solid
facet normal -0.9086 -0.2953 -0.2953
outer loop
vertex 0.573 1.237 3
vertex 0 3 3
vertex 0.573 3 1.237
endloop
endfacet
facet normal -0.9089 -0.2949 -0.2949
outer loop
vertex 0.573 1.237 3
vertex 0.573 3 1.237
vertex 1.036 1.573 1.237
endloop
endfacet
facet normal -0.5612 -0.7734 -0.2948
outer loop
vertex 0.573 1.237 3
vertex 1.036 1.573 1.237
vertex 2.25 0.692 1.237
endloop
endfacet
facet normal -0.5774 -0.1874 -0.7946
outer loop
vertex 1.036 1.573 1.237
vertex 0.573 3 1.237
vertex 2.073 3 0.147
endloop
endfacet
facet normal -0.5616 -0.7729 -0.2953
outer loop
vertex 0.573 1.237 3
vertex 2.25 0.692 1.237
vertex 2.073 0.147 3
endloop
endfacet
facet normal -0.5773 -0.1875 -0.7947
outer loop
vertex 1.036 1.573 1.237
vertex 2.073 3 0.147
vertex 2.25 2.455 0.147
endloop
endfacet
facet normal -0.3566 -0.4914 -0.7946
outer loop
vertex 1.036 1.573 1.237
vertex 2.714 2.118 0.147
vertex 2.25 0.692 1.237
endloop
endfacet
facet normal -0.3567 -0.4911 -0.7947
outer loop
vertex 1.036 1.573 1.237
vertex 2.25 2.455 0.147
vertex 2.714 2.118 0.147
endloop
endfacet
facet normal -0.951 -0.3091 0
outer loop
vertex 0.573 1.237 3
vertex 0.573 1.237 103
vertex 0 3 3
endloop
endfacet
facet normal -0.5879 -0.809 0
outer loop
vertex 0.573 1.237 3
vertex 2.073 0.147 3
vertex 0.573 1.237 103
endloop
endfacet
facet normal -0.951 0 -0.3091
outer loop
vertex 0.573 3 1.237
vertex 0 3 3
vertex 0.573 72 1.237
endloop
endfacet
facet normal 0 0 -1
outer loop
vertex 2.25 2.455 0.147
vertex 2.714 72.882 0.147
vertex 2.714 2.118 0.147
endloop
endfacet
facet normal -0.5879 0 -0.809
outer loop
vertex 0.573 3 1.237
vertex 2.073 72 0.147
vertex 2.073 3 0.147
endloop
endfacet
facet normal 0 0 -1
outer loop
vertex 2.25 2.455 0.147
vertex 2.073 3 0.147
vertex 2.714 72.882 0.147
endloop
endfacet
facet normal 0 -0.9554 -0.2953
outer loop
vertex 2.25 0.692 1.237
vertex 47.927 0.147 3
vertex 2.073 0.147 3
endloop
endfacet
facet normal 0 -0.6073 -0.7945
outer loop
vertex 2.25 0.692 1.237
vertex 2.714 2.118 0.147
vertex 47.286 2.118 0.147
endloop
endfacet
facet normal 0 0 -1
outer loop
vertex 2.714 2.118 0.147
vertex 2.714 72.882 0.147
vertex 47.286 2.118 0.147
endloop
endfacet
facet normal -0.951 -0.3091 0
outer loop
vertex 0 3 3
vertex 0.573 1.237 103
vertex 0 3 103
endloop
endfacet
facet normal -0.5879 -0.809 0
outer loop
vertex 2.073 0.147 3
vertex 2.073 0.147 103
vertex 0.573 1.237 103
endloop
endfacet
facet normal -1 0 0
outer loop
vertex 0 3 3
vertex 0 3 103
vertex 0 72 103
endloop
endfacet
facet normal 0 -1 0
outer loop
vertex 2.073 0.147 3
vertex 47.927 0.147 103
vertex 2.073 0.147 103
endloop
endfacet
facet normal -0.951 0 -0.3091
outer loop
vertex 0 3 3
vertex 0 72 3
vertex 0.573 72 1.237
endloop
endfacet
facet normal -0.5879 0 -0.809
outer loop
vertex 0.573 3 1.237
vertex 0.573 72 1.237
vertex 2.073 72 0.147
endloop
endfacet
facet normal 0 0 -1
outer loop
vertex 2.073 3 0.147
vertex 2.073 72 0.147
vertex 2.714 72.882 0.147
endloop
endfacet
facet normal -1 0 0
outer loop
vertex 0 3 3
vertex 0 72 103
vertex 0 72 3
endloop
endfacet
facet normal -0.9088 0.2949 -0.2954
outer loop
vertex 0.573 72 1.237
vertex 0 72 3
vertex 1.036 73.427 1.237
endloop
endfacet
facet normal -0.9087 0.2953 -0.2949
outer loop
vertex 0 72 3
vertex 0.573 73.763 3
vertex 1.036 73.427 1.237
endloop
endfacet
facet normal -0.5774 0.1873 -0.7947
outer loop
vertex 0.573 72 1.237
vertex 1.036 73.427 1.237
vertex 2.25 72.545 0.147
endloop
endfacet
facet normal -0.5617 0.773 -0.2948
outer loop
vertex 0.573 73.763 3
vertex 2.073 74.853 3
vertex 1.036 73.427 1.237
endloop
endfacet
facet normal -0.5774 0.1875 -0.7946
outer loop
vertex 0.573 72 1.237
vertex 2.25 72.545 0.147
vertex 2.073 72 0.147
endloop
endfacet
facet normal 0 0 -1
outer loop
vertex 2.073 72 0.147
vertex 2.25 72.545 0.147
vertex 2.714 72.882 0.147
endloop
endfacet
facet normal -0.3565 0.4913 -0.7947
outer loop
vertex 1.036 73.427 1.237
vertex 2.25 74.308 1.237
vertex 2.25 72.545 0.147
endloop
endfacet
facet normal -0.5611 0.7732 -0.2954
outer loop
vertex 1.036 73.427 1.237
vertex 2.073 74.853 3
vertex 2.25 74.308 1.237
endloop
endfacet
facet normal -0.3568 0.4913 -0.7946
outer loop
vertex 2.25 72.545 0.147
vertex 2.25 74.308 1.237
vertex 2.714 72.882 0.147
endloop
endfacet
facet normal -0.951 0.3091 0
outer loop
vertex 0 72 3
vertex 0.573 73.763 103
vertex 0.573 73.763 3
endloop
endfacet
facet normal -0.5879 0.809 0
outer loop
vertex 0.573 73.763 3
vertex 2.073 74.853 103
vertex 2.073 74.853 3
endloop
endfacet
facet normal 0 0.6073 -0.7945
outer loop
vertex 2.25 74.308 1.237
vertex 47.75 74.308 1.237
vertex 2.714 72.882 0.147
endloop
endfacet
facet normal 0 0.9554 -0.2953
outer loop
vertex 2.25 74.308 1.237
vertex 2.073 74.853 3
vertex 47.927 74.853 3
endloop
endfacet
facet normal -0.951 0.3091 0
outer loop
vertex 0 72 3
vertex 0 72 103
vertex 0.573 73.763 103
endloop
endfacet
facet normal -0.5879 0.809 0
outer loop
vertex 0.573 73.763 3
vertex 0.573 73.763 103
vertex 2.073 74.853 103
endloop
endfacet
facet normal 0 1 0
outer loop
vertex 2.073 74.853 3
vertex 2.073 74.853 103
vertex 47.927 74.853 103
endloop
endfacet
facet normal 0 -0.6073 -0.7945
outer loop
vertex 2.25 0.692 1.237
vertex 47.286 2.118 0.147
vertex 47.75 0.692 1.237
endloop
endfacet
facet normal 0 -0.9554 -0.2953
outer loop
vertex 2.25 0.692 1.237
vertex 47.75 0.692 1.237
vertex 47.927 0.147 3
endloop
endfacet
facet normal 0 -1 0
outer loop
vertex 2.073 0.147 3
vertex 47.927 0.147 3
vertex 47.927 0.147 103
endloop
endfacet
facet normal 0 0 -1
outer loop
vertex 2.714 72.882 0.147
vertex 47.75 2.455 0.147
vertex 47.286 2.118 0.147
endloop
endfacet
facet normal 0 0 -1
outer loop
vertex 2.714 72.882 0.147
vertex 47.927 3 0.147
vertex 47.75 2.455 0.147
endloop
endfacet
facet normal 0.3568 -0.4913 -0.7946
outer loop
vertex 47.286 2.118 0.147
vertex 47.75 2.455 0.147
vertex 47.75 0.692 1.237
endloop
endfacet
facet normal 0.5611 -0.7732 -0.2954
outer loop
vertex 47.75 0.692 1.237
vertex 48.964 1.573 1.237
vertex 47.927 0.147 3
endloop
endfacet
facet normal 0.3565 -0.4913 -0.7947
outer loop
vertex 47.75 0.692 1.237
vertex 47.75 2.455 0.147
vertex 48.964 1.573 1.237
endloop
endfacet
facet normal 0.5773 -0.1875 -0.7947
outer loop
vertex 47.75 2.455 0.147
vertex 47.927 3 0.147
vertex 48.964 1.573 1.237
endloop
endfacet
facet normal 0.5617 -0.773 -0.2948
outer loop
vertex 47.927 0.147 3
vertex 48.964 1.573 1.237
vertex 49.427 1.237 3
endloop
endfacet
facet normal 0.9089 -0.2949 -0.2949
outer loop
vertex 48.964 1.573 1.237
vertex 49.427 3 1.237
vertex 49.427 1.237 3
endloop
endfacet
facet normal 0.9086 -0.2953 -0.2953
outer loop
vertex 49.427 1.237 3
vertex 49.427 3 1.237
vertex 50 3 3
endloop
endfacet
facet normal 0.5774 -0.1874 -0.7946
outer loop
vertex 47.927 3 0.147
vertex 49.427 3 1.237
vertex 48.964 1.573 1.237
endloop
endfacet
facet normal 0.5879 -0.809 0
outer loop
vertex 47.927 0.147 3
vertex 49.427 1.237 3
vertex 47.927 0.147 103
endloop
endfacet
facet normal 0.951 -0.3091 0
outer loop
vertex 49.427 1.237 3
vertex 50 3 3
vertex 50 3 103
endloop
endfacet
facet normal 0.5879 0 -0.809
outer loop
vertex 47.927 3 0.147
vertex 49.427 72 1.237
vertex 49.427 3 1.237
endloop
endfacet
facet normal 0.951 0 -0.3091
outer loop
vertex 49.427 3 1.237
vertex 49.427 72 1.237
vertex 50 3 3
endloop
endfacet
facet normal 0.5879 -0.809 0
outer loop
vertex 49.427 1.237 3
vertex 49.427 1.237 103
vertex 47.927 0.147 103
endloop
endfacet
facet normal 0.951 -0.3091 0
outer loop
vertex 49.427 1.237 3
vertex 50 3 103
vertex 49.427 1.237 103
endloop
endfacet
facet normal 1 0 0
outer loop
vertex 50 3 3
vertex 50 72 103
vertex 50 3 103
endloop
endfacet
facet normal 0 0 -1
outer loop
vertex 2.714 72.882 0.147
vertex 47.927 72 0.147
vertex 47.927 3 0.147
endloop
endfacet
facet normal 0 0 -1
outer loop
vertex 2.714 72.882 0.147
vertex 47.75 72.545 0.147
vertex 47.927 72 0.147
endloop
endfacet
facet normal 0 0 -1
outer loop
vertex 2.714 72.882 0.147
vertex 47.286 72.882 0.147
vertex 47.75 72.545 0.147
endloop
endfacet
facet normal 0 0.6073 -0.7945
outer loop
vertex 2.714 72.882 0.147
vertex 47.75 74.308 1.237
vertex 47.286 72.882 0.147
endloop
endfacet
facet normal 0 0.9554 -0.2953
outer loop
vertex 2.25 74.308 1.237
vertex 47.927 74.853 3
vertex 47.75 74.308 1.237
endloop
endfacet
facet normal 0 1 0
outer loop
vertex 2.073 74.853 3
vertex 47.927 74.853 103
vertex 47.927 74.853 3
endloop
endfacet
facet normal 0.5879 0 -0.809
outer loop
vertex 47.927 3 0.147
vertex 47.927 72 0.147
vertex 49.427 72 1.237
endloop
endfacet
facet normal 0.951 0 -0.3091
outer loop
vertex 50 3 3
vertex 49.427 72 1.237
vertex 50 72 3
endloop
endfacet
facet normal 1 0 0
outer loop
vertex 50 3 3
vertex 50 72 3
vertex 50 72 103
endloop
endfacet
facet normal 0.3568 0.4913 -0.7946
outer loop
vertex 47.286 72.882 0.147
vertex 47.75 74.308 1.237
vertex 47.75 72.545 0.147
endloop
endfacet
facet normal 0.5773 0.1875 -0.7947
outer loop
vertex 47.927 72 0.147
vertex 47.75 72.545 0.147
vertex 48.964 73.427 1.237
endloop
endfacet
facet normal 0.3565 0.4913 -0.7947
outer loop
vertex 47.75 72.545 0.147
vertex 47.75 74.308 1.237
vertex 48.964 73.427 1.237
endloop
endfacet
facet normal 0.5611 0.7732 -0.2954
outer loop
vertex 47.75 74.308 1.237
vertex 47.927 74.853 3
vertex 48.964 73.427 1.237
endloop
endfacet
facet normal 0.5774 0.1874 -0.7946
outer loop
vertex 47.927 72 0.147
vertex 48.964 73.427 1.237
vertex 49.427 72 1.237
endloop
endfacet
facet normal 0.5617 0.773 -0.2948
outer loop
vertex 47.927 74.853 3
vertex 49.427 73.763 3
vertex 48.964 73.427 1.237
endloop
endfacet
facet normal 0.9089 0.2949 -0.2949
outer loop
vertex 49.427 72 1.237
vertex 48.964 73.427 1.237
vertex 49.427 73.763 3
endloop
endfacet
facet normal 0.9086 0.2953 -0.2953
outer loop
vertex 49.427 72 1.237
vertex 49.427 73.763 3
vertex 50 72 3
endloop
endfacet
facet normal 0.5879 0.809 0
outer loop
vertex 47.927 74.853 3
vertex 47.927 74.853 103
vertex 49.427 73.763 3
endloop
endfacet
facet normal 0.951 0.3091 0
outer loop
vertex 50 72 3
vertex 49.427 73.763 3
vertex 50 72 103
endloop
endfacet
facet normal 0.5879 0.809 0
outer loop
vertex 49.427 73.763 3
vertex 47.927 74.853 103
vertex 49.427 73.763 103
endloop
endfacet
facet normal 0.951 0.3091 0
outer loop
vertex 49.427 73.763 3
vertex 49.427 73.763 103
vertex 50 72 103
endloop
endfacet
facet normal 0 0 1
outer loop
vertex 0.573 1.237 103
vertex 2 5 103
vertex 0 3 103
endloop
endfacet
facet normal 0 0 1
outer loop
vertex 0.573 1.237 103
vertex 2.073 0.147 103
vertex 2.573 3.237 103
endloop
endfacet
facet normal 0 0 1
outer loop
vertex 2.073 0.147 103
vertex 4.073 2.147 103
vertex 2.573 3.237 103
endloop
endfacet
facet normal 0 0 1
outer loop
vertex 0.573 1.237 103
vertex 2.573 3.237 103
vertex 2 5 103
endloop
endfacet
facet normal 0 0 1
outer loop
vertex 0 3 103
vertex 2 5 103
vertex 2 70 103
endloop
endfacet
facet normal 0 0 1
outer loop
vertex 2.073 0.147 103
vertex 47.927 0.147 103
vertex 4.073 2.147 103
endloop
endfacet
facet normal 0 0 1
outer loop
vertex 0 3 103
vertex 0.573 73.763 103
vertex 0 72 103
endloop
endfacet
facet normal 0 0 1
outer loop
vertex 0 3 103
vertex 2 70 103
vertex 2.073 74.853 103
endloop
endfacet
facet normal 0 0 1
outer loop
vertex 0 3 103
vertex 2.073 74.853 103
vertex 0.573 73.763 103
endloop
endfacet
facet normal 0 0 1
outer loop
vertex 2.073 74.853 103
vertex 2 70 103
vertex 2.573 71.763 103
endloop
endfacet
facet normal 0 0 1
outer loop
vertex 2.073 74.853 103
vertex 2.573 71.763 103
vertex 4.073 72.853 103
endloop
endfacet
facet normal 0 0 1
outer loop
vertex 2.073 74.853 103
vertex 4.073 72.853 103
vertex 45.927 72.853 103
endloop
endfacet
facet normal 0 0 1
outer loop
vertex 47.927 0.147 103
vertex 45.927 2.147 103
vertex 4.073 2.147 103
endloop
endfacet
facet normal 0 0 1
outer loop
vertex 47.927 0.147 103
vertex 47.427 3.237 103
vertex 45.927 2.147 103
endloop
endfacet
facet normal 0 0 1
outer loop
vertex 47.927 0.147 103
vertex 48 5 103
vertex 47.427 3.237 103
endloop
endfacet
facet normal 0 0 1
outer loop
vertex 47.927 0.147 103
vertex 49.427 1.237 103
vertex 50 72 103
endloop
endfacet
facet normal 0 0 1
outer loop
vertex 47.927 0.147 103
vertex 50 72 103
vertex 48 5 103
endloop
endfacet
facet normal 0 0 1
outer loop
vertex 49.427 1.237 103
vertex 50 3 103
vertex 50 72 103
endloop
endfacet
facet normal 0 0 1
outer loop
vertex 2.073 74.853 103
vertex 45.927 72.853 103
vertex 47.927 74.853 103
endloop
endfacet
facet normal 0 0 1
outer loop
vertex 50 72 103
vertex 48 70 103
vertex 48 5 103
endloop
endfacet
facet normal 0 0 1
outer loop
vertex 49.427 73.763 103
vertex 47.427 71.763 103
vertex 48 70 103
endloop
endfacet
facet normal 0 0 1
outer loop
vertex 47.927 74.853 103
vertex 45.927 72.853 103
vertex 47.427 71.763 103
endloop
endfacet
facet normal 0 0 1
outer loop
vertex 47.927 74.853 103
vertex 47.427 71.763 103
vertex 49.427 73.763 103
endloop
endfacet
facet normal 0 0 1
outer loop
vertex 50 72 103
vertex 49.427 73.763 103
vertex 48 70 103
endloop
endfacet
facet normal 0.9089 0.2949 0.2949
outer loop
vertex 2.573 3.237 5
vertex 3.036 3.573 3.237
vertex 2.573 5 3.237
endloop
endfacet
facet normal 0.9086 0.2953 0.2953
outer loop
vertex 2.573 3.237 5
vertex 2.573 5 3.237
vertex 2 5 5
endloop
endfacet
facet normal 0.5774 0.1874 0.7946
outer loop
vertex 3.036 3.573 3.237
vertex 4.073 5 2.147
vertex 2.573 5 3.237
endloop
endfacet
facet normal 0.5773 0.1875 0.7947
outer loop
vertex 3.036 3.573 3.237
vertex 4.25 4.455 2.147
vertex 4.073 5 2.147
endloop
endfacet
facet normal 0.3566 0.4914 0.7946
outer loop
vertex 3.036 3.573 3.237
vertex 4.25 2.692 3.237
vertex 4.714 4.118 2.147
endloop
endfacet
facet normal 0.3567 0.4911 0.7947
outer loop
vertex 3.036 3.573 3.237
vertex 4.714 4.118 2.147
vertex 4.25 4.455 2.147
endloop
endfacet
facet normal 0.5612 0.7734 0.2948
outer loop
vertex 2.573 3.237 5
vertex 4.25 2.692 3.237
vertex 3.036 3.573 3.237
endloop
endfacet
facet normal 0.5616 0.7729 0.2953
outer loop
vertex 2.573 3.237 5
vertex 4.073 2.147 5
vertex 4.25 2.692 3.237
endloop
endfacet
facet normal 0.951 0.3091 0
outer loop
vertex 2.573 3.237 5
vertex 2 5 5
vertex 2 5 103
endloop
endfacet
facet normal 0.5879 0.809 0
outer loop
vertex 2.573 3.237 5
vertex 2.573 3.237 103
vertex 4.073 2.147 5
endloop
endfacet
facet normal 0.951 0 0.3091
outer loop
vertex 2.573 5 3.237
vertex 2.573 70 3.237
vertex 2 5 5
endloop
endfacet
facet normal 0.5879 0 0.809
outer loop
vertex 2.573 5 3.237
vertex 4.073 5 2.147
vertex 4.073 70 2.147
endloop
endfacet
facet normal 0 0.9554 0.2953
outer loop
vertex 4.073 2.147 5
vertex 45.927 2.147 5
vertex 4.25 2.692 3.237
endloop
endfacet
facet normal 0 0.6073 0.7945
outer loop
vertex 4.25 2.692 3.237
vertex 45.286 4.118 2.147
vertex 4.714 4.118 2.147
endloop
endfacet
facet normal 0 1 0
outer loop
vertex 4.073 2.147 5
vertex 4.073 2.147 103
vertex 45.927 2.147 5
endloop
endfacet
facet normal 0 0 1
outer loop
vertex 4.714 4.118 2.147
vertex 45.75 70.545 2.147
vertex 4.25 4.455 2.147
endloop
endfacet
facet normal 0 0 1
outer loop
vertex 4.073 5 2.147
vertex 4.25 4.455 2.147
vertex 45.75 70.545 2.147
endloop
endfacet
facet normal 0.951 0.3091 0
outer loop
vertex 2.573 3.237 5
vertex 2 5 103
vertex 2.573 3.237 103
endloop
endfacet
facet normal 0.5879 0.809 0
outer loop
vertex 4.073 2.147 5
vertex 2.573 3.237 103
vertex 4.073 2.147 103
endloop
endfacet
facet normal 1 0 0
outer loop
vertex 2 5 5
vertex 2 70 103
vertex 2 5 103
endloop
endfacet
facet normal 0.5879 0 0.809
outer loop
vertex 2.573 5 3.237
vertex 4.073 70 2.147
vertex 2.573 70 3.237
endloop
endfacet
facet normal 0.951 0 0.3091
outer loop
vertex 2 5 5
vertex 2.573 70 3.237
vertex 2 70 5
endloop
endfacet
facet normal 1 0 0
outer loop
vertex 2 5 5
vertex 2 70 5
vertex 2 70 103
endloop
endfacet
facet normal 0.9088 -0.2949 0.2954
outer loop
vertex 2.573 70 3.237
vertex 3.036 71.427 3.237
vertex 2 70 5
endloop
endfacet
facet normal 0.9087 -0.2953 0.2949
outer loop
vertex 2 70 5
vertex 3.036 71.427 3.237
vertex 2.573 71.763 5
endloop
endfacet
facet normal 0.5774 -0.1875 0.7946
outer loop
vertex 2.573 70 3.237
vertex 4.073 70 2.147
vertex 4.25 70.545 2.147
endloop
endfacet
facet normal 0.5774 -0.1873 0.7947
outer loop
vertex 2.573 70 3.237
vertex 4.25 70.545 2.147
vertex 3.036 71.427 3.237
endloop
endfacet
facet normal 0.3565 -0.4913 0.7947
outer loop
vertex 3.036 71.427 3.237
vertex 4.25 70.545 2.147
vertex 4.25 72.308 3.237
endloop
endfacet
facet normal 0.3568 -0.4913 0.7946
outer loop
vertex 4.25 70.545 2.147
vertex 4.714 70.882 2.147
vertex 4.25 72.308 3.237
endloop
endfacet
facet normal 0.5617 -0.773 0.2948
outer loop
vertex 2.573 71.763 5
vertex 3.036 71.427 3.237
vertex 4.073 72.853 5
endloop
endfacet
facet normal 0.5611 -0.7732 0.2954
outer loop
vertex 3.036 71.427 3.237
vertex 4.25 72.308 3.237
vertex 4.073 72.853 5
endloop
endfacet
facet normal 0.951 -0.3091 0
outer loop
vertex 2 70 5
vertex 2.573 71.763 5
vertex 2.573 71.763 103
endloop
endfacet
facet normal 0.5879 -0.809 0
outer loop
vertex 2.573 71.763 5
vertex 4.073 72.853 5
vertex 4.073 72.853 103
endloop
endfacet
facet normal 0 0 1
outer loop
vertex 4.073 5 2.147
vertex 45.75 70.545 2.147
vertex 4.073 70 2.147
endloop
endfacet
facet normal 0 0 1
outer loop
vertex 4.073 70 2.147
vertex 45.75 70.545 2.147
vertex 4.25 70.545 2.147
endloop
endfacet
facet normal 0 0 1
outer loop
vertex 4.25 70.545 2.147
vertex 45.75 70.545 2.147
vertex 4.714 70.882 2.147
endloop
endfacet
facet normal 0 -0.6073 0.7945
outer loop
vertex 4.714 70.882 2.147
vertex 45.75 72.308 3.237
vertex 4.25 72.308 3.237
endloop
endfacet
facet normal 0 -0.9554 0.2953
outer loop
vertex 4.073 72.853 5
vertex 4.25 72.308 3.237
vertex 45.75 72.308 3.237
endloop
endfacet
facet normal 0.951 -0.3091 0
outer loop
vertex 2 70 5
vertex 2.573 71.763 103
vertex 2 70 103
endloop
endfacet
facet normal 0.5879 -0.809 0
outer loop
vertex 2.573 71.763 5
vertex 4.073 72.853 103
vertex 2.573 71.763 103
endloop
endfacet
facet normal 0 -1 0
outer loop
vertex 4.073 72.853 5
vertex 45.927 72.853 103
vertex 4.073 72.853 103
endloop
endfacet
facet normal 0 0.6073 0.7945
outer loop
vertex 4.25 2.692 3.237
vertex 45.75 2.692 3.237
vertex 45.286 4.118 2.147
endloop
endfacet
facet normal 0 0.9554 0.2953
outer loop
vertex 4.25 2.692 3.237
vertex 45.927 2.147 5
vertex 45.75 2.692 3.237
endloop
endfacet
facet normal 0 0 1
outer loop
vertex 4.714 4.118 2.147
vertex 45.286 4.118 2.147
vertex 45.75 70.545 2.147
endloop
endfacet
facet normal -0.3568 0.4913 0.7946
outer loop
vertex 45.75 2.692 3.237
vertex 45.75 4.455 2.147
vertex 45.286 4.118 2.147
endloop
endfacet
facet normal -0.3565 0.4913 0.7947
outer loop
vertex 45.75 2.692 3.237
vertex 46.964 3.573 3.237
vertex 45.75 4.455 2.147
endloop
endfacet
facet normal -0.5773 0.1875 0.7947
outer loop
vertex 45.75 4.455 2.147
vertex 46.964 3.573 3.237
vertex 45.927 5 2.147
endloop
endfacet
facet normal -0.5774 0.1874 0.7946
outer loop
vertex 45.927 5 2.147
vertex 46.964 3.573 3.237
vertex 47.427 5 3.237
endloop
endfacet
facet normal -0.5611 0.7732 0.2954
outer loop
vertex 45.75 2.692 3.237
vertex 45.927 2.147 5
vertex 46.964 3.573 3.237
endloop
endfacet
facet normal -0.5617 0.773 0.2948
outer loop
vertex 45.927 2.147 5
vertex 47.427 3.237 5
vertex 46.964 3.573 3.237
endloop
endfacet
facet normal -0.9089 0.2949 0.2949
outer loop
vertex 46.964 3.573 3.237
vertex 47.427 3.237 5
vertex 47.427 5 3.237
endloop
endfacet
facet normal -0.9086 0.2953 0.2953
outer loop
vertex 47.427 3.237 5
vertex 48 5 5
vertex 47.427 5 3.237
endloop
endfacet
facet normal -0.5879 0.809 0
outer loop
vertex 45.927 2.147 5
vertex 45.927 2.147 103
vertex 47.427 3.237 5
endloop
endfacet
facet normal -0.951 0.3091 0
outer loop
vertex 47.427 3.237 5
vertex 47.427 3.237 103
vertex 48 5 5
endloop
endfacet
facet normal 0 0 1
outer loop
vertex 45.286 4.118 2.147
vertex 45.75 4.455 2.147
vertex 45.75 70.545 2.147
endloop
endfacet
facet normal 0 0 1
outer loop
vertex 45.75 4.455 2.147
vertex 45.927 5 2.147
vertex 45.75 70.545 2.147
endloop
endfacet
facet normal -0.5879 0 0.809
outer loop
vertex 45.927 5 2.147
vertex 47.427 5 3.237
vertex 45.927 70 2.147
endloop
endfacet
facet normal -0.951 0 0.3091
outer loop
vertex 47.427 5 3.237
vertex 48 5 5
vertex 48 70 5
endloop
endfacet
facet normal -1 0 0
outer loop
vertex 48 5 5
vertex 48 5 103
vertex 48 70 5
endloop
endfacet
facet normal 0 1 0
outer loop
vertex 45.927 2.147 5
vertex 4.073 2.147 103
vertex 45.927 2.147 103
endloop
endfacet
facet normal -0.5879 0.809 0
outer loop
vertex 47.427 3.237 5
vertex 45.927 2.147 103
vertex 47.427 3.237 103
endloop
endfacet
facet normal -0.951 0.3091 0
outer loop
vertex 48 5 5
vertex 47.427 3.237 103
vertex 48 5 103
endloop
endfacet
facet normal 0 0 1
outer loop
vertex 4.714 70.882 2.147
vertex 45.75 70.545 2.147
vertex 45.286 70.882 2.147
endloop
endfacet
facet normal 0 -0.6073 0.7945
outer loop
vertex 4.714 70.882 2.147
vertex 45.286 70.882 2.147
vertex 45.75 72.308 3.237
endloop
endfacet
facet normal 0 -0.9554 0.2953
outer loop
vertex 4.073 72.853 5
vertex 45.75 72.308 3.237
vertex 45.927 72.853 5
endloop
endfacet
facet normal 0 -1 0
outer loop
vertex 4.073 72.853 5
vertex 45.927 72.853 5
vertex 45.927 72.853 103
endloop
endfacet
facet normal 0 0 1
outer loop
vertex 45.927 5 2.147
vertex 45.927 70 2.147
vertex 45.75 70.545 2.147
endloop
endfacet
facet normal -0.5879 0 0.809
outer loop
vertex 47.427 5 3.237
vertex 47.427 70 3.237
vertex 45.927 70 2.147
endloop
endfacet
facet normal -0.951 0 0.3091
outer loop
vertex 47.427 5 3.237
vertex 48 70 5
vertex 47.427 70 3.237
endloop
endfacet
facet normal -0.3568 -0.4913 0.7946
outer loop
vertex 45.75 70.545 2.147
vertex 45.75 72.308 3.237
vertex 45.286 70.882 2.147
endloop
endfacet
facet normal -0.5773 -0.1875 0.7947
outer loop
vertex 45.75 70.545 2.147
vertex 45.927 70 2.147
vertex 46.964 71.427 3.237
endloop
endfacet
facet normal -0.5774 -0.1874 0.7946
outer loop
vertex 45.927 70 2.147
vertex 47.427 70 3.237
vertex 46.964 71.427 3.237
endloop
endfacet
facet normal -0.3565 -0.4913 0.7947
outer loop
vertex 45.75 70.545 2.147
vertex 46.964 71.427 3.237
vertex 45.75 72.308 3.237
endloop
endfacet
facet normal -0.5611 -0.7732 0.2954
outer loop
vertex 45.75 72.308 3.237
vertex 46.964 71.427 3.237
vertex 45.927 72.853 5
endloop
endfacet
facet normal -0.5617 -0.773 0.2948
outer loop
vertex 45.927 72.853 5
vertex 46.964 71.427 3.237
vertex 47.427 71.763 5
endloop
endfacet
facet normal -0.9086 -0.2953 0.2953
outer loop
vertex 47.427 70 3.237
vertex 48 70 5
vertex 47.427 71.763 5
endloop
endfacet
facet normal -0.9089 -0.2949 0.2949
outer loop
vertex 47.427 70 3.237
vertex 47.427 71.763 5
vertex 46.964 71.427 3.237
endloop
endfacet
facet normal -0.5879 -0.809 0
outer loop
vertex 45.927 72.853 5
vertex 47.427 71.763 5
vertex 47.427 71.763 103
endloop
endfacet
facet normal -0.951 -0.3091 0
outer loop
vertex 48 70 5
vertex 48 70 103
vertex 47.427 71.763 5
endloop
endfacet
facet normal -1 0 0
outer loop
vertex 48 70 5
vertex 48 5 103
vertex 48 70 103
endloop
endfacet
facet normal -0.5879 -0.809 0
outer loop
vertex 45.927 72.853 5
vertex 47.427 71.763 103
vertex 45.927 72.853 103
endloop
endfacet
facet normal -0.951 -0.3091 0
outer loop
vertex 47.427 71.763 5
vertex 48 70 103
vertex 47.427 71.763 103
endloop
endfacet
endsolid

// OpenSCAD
module spheres(width,length,height,radius) {
  translate([radius,radius,radius]) sphere(radius);
  translate([width - radius, length - radius, radius]) sphere(radius);
  translate([width - radius, radius, radius]) sphere(radius);
  translate([radius, length - radius, radius]) sphere(radius);
}

module slicer(width, length, z_up, height) {
  translate([0, 0, z_up]) cube([width, length, height]); 
}

module round_bottom_box(width, length, height, radius) {
  difference() {
    hull() {
      spheres(width,length,height,radius);
      translate([0,0,height]) spheres(width,length,height,radius);
    }
    slicer(width, length, height+radius, radius+1);
  }
}

module hollow_round_bottom_box(width, length, height, radius, wall = 2) {
 inside_width = width - (2 * wall);
 inside_length = length - (2 * wall);
 inside_height = height;
 difference() {
   round_bottom_box(width, length, height, radius);
   translate ([wall, wall, wall]) 
     round_bottom_box(inside_width, inside_length, inside_height, radius);
 }
}

hollow_round_bottom_box(50,75,100,3,2);
